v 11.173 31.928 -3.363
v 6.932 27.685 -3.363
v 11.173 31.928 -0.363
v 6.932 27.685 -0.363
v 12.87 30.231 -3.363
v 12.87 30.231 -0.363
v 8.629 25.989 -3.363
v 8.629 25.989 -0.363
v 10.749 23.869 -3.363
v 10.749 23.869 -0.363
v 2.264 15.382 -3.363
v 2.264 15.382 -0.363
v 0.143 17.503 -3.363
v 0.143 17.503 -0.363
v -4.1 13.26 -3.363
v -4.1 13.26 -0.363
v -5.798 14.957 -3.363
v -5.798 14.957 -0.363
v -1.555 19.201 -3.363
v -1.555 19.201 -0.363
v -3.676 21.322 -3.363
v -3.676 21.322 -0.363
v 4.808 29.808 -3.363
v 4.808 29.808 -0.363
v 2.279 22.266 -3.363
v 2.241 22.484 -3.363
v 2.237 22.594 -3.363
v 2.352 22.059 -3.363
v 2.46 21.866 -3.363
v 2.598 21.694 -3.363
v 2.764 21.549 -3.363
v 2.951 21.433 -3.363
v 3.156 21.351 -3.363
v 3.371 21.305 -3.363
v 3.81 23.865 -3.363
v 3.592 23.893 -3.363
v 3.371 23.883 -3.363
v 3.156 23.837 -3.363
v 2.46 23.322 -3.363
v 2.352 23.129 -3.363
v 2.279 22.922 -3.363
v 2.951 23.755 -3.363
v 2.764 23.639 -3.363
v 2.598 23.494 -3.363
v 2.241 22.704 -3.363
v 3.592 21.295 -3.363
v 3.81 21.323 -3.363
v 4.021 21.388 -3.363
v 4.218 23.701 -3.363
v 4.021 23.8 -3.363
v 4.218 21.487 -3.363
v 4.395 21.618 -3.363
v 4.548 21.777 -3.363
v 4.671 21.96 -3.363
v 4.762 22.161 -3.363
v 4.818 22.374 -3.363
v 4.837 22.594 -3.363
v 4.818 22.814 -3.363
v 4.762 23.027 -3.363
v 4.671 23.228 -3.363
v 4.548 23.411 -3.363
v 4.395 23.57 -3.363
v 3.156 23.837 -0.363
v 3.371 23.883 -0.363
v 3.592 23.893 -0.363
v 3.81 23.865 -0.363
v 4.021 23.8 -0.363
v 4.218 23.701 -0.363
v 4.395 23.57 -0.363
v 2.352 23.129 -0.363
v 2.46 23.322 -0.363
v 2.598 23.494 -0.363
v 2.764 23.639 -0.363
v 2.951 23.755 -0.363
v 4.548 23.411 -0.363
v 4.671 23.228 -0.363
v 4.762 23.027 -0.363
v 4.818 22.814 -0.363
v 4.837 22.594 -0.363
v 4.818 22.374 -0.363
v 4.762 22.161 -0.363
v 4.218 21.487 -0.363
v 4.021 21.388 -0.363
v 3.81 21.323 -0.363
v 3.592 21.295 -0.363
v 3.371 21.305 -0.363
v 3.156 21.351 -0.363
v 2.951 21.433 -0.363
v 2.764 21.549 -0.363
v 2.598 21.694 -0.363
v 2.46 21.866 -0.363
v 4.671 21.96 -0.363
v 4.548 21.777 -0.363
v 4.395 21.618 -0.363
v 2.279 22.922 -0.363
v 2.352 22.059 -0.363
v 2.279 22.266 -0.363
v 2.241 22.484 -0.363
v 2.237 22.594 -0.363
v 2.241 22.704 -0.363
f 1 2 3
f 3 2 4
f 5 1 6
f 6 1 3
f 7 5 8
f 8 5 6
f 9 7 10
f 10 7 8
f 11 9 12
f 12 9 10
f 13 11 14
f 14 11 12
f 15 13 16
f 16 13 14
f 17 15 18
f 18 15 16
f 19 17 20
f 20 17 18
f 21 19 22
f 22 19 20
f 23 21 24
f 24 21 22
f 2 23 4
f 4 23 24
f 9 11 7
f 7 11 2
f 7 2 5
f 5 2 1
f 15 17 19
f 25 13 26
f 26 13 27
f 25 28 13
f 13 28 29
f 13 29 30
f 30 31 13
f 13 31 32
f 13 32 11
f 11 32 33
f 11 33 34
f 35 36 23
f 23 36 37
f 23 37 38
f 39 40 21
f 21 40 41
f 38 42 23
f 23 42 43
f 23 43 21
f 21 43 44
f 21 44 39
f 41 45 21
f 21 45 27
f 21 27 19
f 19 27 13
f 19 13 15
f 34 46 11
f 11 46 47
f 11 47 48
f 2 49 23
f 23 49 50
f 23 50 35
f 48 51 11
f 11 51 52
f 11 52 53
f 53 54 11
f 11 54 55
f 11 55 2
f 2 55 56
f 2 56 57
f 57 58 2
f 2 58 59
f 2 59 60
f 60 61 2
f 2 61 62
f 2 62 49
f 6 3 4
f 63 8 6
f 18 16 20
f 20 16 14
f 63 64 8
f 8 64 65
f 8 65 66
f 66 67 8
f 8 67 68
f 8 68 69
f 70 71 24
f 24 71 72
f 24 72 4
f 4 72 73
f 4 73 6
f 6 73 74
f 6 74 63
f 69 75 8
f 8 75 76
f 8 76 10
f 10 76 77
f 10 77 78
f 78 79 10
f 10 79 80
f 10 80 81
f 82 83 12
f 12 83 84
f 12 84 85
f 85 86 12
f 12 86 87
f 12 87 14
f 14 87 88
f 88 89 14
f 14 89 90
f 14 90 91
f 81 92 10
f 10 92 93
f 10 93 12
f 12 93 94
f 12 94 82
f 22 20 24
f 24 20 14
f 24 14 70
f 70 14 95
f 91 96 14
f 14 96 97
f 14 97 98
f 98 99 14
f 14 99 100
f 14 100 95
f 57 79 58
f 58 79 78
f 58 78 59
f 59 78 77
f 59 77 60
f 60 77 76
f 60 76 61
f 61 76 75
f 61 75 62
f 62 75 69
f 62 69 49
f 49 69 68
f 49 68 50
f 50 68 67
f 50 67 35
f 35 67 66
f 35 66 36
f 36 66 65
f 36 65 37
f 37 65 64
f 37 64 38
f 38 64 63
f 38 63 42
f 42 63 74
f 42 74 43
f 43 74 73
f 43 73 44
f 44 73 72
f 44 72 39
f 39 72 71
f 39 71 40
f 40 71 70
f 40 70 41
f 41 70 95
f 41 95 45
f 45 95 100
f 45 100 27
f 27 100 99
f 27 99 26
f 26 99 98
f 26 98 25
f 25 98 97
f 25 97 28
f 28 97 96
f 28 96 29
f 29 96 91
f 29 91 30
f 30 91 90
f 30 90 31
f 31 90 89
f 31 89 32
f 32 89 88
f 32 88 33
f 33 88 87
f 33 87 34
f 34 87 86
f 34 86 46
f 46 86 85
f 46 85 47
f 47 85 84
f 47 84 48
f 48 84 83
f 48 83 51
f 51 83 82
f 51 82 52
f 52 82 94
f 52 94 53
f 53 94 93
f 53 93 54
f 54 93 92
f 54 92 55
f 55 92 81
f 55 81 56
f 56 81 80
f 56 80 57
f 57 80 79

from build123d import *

# Parameters (mm, degrees)
SKETCH_1_R      = 1.3
EXTRUDE_1_DEPTH = 3


with BuildPart() as part:
    # 草图1 → 凸台-拉伸1 (new body)
    with BuildSketch(Plane.XY.offset(-0.362857667)):
        Polygon((6.931968366, 27.685420414), (4.808443123, 29.808337985), (-3.675778765, 21.321687543), (-1.554532399, 19.201048196), (-5.797509256, 14.956856814), (-4.099819599, 13.25965297), (0.142530428, 17.503217343), (2.264294404, 15.382060533), (10.749072595, 23.869267436), (8.629080401, 25.98865297), (12.870428791, 30.231215419), (11.173246227, 31.927912314), align=None)
        with Locations((3.536567574, 22.593983824)):
            Circle(SKETCH_1_R, mode=Mode.SUBTRACT)
    extrude(amount=-EXTRUDE_1_DEPTH)


solid = part.part
